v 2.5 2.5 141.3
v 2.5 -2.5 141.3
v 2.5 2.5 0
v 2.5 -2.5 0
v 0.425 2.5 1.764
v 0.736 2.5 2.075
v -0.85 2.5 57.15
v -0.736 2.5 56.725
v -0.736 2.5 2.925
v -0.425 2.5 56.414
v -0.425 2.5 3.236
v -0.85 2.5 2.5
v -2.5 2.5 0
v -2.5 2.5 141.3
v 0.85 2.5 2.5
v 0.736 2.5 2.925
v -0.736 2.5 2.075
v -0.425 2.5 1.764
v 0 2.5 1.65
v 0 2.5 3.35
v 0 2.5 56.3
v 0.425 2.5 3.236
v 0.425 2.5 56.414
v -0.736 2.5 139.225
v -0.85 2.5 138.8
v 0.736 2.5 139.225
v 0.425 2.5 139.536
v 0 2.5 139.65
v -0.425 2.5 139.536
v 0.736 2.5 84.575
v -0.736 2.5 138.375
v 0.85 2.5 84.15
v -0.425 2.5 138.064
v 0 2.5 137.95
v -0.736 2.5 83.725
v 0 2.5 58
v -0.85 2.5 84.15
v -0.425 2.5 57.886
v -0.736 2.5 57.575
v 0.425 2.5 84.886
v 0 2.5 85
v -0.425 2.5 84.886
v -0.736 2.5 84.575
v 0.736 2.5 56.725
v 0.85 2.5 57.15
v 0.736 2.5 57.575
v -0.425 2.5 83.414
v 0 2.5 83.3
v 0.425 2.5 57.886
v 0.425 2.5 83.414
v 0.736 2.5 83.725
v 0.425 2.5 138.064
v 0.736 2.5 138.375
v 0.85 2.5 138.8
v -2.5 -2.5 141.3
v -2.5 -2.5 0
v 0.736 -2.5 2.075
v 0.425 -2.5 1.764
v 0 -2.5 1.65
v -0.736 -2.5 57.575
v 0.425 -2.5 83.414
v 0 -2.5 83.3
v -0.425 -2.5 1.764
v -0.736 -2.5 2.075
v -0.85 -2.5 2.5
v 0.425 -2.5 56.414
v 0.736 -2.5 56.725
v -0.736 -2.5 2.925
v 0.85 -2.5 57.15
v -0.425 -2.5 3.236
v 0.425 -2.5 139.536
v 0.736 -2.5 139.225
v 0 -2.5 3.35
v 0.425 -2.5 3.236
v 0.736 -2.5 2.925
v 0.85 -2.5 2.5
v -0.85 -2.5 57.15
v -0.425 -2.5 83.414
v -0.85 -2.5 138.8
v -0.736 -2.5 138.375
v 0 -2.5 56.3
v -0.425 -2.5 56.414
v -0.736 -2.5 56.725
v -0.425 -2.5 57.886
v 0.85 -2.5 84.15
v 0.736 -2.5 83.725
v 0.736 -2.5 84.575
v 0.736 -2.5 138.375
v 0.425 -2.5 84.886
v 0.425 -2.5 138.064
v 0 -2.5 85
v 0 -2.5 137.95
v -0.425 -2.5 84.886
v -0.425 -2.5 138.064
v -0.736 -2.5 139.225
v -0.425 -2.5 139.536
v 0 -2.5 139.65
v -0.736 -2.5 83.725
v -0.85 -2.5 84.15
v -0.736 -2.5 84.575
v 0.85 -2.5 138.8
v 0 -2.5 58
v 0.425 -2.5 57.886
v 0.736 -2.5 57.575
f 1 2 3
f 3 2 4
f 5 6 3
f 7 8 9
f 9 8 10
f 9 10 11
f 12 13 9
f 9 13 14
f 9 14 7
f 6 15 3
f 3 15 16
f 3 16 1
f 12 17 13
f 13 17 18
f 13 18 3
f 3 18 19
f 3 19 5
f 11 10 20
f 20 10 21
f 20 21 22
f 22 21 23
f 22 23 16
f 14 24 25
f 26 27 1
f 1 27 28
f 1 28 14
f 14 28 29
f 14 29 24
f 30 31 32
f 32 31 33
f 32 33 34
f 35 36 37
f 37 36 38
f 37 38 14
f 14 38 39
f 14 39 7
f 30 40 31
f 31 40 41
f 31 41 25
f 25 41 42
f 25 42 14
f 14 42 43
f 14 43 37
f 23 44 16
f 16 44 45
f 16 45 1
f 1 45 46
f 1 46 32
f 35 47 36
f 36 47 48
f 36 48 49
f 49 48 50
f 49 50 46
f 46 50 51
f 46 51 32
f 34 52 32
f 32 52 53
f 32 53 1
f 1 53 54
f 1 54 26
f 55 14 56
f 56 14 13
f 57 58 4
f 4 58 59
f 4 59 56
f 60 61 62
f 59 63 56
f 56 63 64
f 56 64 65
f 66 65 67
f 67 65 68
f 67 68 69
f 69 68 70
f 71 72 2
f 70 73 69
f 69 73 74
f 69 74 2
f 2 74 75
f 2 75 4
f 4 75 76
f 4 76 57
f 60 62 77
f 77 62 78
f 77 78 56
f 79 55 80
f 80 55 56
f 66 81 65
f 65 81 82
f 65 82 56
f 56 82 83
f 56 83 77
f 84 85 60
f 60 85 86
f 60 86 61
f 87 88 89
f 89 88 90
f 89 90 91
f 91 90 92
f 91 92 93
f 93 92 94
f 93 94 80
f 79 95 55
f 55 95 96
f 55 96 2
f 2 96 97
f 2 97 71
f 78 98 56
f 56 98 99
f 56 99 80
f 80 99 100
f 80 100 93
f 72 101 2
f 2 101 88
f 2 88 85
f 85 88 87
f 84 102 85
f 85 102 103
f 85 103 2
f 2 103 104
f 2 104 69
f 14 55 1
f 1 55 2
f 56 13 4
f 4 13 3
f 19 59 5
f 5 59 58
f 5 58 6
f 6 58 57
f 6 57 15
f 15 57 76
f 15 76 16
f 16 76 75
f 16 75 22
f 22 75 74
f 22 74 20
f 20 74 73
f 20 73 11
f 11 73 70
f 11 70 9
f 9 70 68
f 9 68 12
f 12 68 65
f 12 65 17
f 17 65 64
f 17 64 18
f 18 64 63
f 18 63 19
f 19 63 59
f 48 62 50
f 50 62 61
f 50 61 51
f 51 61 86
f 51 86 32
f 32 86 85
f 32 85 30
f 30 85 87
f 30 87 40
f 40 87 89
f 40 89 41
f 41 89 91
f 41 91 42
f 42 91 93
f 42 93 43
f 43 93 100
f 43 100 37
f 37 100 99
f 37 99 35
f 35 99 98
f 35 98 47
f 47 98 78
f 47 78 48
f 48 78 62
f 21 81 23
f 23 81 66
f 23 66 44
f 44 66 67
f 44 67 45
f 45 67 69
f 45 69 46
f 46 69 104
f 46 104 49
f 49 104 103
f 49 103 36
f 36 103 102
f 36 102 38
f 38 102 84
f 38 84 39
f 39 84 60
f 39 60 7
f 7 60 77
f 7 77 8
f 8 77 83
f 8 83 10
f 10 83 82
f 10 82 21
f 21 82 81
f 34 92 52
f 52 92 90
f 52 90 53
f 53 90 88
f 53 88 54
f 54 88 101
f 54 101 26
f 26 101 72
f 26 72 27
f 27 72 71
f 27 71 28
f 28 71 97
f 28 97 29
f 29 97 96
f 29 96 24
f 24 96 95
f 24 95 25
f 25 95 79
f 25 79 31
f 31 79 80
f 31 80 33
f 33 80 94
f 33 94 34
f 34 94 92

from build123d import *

# Parameters (mm, degrees)
SKETCH1_W           = 5
SKETCH1_H           = 5
BOSS_EXTRUDE1_DEPTH = 141.3
SKETCH3_R           = 0.85
CUT_EXTRUDE2_DEPTH  = 142.41053709


with BuildPart() as part:
    # Sketch1 → Boss-Extrude1 (new body)
    with BuildSketch(Plane.XY):
        Rectangle(SKETCH1_W, SKETCH1_H)
    extrude(amount=BOSS_EXTRUDE1_DEPTH)

    # Sketch3 → Cut-Extrude2 (cut, through all)
    with BuildSketch(Plane.XZ.offset(2.5)):
        with Locations(Location((0, 138.8, 0), (0, 0, 270))):
            Circle(SKETCH3_R)
        with Locations(Location((0, 2.5, 0), (0, 0, 90))):
            Circle(SKETCH3_R)
        with Locations(Location((0, 84.15, 0), (0, 0, 270))):
            Circle(SKETCH3_R)
        with Locations(Location((0, 57.15, 0), (0, 0, 90))):
            Circle(SKETCH3_R)
    extrude(amount=-CUT_EXTRUDE2_DEPTH, mode=Mode.SUBTRACT)


solid = part.part
